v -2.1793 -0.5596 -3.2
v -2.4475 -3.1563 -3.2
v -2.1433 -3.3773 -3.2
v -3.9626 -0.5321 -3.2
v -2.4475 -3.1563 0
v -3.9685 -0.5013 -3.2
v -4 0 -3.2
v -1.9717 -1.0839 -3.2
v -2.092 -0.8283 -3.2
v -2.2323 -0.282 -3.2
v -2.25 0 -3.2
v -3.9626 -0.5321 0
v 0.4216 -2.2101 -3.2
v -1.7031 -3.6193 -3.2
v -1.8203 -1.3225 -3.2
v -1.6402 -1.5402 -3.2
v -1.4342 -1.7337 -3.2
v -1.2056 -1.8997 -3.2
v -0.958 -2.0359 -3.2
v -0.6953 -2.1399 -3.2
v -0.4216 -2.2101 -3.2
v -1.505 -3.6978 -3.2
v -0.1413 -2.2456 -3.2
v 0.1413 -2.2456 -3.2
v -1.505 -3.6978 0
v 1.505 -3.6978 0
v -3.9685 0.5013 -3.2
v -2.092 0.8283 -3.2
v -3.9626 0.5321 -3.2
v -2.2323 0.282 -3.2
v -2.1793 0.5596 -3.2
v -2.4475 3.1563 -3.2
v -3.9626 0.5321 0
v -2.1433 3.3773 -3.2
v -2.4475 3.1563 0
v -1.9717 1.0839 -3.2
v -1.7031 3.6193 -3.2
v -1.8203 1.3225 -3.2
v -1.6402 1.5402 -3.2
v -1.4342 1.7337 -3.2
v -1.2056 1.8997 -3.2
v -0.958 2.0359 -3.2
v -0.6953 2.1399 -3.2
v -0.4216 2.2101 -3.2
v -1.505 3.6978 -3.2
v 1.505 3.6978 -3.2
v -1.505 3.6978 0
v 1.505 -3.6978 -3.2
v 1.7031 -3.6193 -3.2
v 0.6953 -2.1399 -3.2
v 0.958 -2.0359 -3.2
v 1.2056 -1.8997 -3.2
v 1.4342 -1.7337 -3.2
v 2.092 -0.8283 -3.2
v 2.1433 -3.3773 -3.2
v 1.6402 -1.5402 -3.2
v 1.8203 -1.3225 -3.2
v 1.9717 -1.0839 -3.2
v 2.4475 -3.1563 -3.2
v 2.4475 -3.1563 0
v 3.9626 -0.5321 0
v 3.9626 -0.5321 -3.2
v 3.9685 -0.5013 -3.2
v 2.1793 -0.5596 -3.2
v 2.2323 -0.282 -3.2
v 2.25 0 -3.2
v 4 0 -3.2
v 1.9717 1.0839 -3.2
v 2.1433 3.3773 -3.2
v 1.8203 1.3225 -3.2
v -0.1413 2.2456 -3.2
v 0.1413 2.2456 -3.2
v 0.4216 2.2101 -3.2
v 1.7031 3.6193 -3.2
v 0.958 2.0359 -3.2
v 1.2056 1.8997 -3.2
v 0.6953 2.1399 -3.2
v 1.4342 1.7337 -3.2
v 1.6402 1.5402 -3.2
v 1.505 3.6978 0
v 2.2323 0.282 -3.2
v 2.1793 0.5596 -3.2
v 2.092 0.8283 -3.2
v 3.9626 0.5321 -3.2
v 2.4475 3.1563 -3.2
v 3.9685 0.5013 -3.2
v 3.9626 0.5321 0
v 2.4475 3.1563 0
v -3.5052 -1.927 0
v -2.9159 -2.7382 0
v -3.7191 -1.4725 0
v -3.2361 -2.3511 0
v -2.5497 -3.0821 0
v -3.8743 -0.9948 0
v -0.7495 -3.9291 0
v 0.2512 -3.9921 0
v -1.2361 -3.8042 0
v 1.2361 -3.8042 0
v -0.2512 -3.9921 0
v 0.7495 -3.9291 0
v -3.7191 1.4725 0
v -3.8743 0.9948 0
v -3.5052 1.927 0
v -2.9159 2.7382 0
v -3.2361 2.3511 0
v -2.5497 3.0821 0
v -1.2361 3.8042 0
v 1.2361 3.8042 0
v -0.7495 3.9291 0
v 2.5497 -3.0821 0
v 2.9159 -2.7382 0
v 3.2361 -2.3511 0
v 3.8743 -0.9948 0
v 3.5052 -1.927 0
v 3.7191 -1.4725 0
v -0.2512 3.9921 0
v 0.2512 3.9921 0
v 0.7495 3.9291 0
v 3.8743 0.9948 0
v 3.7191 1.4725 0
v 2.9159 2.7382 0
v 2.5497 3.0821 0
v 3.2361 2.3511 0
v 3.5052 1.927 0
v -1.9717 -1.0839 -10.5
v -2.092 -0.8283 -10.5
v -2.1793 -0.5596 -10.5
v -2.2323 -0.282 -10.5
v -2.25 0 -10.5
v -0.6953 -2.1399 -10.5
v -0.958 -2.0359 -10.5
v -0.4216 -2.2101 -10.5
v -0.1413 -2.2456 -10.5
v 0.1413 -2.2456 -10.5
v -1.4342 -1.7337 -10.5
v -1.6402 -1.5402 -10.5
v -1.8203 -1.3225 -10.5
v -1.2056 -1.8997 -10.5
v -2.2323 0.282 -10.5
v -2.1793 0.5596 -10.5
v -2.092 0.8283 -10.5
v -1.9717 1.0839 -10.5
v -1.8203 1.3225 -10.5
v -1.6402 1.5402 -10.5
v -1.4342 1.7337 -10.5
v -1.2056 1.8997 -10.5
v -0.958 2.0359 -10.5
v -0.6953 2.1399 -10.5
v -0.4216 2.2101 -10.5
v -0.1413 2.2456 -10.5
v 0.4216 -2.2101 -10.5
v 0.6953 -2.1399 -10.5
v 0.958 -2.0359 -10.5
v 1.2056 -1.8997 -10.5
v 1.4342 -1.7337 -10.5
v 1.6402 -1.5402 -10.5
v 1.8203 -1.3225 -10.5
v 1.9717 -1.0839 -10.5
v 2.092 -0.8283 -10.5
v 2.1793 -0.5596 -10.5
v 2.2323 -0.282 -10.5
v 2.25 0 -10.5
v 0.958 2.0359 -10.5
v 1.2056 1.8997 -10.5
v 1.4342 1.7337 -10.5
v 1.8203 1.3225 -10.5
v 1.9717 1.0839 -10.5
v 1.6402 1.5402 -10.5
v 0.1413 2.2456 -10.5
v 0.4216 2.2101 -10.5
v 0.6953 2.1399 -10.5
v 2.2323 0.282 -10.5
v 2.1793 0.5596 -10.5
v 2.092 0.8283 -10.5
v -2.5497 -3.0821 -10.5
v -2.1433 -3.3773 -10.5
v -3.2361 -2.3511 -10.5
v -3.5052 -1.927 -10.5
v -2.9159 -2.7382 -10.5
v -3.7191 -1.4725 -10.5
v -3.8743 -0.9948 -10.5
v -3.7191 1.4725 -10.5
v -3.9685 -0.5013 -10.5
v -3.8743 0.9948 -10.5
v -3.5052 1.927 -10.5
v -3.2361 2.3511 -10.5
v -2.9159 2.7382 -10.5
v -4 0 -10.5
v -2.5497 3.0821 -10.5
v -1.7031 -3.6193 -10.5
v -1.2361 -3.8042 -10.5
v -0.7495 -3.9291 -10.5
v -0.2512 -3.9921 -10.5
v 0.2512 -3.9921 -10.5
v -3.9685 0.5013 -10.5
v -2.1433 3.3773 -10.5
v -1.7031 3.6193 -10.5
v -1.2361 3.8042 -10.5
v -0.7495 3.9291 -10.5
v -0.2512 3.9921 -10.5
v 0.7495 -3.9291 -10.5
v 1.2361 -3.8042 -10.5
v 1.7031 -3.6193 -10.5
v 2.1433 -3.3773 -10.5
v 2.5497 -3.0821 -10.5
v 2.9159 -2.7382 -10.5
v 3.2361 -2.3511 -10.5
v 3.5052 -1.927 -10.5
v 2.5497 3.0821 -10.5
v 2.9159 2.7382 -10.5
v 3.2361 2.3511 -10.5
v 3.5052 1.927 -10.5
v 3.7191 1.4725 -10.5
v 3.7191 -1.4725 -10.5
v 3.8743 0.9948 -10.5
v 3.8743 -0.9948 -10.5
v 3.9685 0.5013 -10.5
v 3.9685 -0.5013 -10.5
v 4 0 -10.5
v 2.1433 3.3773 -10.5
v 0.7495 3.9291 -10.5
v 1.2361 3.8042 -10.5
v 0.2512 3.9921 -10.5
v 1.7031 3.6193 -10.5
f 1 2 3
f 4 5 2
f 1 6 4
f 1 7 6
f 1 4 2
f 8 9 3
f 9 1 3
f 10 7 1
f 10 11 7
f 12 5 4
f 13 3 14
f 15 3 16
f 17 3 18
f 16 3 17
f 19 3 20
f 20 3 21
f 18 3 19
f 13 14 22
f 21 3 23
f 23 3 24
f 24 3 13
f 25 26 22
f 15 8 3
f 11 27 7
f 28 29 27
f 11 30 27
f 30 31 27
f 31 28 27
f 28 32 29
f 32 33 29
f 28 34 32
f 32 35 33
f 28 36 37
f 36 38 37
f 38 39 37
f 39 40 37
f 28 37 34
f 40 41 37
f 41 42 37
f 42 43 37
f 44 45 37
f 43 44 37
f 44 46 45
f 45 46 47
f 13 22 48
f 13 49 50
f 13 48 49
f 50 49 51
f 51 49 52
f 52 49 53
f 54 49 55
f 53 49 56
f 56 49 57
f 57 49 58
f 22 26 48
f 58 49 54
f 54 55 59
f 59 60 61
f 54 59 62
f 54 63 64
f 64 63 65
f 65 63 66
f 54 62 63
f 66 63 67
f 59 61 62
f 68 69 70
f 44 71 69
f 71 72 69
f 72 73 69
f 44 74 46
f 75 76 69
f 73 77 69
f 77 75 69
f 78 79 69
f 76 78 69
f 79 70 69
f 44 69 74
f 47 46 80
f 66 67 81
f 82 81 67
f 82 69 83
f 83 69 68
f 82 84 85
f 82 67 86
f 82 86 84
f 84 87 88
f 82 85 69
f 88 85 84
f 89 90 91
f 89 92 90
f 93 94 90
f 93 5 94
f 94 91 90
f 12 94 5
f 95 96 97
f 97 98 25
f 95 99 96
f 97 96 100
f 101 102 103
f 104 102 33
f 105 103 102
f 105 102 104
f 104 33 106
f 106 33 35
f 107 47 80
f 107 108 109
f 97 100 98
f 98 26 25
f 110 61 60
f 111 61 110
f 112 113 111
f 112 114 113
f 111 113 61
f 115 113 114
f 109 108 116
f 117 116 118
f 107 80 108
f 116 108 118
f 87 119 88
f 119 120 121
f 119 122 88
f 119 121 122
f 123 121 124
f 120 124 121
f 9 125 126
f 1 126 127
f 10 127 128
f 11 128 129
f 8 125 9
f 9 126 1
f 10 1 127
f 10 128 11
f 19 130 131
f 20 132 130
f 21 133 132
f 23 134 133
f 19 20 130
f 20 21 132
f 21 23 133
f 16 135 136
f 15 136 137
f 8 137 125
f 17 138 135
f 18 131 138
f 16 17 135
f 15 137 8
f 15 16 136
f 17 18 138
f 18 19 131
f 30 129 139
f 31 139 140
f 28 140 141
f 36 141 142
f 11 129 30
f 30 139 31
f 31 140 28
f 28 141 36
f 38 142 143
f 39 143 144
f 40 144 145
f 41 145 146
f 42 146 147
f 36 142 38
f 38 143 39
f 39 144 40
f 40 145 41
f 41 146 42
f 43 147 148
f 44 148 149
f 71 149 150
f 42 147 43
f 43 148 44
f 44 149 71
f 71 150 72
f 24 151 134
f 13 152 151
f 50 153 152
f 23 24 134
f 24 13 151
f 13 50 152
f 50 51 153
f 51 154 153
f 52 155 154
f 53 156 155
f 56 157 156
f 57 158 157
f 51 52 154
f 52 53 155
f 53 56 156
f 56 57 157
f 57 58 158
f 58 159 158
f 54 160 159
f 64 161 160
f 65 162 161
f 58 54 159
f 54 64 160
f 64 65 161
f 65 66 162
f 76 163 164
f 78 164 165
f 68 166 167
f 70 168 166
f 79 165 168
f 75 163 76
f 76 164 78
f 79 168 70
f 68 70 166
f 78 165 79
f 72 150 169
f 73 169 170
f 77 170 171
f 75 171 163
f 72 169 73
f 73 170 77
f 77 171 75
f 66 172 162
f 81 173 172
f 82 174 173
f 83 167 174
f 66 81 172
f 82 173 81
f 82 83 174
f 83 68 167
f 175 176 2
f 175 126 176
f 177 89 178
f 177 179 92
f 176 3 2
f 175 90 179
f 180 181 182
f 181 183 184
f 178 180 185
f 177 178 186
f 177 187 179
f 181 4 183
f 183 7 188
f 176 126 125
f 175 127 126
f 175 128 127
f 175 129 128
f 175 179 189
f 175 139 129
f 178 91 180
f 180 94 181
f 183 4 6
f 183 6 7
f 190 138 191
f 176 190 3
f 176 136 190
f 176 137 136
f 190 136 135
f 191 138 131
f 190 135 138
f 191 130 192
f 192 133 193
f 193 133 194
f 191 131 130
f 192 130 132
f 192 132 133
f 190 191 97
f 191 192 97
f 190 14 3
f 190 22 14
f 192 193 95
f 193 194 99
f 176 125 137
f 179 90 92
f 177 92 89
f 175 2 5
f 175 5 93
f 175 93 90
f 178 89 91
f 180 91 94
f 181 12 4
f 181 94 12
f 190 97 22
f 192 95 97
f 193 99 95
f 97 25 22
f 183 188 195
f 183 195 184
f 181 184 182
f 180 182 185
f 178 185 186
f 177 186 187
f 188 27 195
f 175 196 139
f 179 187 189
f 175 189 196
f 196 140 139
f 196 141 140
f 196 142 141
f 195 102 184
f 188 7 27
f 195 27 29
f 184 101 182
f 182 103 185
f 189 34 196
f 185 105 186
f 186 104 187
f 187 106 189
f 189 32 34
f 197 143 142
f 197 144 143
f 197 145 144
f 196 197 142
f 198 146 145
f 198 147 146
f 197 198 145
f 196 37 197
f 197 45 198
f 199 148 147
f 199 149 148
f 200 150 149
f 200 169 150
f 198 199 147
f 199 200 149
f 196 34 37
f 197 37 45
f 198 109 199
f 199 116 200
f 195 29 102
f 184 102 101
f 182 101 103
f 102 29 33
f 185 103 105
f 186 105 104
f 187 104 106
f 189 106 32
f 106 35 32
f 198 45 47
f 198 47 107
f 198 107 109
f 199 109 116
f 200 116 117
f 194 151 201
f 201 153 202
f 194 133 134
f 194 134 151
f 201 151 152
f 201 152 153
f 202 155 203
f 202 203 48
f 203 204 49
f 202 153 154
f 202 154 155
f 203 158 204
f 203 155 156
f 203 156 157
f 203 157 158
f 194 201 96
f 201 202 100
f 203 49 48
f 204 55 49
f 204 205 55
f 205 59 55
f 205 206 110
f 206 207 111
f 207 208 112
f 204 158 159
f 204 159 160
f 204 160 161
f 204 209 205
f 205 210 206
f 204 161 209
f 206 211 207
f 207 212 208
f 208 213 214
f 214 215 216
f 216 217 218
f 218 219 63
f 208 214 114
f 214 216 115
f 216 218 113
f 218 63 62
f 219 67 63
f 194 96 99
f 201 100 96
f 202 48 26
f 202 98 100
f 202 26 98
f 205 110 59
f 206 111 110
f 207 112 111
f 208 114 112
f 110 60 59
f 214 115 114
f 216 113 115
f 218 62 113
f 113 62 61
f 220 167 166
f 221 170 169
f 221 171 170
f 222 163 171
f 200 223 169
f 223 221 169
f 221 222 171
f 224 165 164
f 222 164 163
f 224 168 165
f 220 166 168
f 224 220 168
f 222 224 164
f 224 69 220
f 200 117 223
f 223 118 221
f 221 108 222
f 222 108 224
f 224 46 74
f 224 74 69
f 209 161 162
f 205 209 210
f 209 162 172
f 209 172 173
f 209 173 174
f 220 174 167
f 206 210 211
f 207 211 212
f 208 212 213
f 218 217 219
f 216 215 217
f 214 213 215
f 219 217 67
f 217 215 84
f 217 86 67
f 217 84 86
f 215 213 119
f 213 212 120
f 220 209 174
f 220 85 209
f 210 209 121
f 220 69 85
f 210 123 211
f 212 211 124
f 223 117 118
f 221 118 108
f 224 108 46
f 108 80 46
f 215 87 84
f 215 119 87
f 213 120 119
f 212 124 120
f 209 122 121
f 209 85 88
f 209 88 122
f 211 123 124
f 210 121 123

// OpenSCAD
$fn = 50;

difference() {
	union() {
		translate(v = [0, 0, -10.5]) {
			cylinder(h = 13.5, r = 4.0);
		}
	}
	union() {
		translate(v = [0, 0, 0]) {
			rotate(a = [0, 0, 0]) {
				difference() {
					union() {
						translate(v = [0, 0, -3.2]) {
							linear_extrude(height = 3.2) {
								polygon(points = [[4.2698, 0.0], [2.1349000000000005, 3.697755269078796], [-2.134899999999999, 3.6977552690787965], [-4.2698, 5.228996902999369e-16], [-2.134900000000002, -3.6977552690787956], [2.1348999999999974, -3.697755269078798]]);
							}
						}
					}
					union();
				}
			}
		}
		#cylinder(h = 3, r = 5.0);
		#translate(v = [0, 0, -100.0]) {
			cylinder(h = 200, r = 2.25);
		}
	}
}
